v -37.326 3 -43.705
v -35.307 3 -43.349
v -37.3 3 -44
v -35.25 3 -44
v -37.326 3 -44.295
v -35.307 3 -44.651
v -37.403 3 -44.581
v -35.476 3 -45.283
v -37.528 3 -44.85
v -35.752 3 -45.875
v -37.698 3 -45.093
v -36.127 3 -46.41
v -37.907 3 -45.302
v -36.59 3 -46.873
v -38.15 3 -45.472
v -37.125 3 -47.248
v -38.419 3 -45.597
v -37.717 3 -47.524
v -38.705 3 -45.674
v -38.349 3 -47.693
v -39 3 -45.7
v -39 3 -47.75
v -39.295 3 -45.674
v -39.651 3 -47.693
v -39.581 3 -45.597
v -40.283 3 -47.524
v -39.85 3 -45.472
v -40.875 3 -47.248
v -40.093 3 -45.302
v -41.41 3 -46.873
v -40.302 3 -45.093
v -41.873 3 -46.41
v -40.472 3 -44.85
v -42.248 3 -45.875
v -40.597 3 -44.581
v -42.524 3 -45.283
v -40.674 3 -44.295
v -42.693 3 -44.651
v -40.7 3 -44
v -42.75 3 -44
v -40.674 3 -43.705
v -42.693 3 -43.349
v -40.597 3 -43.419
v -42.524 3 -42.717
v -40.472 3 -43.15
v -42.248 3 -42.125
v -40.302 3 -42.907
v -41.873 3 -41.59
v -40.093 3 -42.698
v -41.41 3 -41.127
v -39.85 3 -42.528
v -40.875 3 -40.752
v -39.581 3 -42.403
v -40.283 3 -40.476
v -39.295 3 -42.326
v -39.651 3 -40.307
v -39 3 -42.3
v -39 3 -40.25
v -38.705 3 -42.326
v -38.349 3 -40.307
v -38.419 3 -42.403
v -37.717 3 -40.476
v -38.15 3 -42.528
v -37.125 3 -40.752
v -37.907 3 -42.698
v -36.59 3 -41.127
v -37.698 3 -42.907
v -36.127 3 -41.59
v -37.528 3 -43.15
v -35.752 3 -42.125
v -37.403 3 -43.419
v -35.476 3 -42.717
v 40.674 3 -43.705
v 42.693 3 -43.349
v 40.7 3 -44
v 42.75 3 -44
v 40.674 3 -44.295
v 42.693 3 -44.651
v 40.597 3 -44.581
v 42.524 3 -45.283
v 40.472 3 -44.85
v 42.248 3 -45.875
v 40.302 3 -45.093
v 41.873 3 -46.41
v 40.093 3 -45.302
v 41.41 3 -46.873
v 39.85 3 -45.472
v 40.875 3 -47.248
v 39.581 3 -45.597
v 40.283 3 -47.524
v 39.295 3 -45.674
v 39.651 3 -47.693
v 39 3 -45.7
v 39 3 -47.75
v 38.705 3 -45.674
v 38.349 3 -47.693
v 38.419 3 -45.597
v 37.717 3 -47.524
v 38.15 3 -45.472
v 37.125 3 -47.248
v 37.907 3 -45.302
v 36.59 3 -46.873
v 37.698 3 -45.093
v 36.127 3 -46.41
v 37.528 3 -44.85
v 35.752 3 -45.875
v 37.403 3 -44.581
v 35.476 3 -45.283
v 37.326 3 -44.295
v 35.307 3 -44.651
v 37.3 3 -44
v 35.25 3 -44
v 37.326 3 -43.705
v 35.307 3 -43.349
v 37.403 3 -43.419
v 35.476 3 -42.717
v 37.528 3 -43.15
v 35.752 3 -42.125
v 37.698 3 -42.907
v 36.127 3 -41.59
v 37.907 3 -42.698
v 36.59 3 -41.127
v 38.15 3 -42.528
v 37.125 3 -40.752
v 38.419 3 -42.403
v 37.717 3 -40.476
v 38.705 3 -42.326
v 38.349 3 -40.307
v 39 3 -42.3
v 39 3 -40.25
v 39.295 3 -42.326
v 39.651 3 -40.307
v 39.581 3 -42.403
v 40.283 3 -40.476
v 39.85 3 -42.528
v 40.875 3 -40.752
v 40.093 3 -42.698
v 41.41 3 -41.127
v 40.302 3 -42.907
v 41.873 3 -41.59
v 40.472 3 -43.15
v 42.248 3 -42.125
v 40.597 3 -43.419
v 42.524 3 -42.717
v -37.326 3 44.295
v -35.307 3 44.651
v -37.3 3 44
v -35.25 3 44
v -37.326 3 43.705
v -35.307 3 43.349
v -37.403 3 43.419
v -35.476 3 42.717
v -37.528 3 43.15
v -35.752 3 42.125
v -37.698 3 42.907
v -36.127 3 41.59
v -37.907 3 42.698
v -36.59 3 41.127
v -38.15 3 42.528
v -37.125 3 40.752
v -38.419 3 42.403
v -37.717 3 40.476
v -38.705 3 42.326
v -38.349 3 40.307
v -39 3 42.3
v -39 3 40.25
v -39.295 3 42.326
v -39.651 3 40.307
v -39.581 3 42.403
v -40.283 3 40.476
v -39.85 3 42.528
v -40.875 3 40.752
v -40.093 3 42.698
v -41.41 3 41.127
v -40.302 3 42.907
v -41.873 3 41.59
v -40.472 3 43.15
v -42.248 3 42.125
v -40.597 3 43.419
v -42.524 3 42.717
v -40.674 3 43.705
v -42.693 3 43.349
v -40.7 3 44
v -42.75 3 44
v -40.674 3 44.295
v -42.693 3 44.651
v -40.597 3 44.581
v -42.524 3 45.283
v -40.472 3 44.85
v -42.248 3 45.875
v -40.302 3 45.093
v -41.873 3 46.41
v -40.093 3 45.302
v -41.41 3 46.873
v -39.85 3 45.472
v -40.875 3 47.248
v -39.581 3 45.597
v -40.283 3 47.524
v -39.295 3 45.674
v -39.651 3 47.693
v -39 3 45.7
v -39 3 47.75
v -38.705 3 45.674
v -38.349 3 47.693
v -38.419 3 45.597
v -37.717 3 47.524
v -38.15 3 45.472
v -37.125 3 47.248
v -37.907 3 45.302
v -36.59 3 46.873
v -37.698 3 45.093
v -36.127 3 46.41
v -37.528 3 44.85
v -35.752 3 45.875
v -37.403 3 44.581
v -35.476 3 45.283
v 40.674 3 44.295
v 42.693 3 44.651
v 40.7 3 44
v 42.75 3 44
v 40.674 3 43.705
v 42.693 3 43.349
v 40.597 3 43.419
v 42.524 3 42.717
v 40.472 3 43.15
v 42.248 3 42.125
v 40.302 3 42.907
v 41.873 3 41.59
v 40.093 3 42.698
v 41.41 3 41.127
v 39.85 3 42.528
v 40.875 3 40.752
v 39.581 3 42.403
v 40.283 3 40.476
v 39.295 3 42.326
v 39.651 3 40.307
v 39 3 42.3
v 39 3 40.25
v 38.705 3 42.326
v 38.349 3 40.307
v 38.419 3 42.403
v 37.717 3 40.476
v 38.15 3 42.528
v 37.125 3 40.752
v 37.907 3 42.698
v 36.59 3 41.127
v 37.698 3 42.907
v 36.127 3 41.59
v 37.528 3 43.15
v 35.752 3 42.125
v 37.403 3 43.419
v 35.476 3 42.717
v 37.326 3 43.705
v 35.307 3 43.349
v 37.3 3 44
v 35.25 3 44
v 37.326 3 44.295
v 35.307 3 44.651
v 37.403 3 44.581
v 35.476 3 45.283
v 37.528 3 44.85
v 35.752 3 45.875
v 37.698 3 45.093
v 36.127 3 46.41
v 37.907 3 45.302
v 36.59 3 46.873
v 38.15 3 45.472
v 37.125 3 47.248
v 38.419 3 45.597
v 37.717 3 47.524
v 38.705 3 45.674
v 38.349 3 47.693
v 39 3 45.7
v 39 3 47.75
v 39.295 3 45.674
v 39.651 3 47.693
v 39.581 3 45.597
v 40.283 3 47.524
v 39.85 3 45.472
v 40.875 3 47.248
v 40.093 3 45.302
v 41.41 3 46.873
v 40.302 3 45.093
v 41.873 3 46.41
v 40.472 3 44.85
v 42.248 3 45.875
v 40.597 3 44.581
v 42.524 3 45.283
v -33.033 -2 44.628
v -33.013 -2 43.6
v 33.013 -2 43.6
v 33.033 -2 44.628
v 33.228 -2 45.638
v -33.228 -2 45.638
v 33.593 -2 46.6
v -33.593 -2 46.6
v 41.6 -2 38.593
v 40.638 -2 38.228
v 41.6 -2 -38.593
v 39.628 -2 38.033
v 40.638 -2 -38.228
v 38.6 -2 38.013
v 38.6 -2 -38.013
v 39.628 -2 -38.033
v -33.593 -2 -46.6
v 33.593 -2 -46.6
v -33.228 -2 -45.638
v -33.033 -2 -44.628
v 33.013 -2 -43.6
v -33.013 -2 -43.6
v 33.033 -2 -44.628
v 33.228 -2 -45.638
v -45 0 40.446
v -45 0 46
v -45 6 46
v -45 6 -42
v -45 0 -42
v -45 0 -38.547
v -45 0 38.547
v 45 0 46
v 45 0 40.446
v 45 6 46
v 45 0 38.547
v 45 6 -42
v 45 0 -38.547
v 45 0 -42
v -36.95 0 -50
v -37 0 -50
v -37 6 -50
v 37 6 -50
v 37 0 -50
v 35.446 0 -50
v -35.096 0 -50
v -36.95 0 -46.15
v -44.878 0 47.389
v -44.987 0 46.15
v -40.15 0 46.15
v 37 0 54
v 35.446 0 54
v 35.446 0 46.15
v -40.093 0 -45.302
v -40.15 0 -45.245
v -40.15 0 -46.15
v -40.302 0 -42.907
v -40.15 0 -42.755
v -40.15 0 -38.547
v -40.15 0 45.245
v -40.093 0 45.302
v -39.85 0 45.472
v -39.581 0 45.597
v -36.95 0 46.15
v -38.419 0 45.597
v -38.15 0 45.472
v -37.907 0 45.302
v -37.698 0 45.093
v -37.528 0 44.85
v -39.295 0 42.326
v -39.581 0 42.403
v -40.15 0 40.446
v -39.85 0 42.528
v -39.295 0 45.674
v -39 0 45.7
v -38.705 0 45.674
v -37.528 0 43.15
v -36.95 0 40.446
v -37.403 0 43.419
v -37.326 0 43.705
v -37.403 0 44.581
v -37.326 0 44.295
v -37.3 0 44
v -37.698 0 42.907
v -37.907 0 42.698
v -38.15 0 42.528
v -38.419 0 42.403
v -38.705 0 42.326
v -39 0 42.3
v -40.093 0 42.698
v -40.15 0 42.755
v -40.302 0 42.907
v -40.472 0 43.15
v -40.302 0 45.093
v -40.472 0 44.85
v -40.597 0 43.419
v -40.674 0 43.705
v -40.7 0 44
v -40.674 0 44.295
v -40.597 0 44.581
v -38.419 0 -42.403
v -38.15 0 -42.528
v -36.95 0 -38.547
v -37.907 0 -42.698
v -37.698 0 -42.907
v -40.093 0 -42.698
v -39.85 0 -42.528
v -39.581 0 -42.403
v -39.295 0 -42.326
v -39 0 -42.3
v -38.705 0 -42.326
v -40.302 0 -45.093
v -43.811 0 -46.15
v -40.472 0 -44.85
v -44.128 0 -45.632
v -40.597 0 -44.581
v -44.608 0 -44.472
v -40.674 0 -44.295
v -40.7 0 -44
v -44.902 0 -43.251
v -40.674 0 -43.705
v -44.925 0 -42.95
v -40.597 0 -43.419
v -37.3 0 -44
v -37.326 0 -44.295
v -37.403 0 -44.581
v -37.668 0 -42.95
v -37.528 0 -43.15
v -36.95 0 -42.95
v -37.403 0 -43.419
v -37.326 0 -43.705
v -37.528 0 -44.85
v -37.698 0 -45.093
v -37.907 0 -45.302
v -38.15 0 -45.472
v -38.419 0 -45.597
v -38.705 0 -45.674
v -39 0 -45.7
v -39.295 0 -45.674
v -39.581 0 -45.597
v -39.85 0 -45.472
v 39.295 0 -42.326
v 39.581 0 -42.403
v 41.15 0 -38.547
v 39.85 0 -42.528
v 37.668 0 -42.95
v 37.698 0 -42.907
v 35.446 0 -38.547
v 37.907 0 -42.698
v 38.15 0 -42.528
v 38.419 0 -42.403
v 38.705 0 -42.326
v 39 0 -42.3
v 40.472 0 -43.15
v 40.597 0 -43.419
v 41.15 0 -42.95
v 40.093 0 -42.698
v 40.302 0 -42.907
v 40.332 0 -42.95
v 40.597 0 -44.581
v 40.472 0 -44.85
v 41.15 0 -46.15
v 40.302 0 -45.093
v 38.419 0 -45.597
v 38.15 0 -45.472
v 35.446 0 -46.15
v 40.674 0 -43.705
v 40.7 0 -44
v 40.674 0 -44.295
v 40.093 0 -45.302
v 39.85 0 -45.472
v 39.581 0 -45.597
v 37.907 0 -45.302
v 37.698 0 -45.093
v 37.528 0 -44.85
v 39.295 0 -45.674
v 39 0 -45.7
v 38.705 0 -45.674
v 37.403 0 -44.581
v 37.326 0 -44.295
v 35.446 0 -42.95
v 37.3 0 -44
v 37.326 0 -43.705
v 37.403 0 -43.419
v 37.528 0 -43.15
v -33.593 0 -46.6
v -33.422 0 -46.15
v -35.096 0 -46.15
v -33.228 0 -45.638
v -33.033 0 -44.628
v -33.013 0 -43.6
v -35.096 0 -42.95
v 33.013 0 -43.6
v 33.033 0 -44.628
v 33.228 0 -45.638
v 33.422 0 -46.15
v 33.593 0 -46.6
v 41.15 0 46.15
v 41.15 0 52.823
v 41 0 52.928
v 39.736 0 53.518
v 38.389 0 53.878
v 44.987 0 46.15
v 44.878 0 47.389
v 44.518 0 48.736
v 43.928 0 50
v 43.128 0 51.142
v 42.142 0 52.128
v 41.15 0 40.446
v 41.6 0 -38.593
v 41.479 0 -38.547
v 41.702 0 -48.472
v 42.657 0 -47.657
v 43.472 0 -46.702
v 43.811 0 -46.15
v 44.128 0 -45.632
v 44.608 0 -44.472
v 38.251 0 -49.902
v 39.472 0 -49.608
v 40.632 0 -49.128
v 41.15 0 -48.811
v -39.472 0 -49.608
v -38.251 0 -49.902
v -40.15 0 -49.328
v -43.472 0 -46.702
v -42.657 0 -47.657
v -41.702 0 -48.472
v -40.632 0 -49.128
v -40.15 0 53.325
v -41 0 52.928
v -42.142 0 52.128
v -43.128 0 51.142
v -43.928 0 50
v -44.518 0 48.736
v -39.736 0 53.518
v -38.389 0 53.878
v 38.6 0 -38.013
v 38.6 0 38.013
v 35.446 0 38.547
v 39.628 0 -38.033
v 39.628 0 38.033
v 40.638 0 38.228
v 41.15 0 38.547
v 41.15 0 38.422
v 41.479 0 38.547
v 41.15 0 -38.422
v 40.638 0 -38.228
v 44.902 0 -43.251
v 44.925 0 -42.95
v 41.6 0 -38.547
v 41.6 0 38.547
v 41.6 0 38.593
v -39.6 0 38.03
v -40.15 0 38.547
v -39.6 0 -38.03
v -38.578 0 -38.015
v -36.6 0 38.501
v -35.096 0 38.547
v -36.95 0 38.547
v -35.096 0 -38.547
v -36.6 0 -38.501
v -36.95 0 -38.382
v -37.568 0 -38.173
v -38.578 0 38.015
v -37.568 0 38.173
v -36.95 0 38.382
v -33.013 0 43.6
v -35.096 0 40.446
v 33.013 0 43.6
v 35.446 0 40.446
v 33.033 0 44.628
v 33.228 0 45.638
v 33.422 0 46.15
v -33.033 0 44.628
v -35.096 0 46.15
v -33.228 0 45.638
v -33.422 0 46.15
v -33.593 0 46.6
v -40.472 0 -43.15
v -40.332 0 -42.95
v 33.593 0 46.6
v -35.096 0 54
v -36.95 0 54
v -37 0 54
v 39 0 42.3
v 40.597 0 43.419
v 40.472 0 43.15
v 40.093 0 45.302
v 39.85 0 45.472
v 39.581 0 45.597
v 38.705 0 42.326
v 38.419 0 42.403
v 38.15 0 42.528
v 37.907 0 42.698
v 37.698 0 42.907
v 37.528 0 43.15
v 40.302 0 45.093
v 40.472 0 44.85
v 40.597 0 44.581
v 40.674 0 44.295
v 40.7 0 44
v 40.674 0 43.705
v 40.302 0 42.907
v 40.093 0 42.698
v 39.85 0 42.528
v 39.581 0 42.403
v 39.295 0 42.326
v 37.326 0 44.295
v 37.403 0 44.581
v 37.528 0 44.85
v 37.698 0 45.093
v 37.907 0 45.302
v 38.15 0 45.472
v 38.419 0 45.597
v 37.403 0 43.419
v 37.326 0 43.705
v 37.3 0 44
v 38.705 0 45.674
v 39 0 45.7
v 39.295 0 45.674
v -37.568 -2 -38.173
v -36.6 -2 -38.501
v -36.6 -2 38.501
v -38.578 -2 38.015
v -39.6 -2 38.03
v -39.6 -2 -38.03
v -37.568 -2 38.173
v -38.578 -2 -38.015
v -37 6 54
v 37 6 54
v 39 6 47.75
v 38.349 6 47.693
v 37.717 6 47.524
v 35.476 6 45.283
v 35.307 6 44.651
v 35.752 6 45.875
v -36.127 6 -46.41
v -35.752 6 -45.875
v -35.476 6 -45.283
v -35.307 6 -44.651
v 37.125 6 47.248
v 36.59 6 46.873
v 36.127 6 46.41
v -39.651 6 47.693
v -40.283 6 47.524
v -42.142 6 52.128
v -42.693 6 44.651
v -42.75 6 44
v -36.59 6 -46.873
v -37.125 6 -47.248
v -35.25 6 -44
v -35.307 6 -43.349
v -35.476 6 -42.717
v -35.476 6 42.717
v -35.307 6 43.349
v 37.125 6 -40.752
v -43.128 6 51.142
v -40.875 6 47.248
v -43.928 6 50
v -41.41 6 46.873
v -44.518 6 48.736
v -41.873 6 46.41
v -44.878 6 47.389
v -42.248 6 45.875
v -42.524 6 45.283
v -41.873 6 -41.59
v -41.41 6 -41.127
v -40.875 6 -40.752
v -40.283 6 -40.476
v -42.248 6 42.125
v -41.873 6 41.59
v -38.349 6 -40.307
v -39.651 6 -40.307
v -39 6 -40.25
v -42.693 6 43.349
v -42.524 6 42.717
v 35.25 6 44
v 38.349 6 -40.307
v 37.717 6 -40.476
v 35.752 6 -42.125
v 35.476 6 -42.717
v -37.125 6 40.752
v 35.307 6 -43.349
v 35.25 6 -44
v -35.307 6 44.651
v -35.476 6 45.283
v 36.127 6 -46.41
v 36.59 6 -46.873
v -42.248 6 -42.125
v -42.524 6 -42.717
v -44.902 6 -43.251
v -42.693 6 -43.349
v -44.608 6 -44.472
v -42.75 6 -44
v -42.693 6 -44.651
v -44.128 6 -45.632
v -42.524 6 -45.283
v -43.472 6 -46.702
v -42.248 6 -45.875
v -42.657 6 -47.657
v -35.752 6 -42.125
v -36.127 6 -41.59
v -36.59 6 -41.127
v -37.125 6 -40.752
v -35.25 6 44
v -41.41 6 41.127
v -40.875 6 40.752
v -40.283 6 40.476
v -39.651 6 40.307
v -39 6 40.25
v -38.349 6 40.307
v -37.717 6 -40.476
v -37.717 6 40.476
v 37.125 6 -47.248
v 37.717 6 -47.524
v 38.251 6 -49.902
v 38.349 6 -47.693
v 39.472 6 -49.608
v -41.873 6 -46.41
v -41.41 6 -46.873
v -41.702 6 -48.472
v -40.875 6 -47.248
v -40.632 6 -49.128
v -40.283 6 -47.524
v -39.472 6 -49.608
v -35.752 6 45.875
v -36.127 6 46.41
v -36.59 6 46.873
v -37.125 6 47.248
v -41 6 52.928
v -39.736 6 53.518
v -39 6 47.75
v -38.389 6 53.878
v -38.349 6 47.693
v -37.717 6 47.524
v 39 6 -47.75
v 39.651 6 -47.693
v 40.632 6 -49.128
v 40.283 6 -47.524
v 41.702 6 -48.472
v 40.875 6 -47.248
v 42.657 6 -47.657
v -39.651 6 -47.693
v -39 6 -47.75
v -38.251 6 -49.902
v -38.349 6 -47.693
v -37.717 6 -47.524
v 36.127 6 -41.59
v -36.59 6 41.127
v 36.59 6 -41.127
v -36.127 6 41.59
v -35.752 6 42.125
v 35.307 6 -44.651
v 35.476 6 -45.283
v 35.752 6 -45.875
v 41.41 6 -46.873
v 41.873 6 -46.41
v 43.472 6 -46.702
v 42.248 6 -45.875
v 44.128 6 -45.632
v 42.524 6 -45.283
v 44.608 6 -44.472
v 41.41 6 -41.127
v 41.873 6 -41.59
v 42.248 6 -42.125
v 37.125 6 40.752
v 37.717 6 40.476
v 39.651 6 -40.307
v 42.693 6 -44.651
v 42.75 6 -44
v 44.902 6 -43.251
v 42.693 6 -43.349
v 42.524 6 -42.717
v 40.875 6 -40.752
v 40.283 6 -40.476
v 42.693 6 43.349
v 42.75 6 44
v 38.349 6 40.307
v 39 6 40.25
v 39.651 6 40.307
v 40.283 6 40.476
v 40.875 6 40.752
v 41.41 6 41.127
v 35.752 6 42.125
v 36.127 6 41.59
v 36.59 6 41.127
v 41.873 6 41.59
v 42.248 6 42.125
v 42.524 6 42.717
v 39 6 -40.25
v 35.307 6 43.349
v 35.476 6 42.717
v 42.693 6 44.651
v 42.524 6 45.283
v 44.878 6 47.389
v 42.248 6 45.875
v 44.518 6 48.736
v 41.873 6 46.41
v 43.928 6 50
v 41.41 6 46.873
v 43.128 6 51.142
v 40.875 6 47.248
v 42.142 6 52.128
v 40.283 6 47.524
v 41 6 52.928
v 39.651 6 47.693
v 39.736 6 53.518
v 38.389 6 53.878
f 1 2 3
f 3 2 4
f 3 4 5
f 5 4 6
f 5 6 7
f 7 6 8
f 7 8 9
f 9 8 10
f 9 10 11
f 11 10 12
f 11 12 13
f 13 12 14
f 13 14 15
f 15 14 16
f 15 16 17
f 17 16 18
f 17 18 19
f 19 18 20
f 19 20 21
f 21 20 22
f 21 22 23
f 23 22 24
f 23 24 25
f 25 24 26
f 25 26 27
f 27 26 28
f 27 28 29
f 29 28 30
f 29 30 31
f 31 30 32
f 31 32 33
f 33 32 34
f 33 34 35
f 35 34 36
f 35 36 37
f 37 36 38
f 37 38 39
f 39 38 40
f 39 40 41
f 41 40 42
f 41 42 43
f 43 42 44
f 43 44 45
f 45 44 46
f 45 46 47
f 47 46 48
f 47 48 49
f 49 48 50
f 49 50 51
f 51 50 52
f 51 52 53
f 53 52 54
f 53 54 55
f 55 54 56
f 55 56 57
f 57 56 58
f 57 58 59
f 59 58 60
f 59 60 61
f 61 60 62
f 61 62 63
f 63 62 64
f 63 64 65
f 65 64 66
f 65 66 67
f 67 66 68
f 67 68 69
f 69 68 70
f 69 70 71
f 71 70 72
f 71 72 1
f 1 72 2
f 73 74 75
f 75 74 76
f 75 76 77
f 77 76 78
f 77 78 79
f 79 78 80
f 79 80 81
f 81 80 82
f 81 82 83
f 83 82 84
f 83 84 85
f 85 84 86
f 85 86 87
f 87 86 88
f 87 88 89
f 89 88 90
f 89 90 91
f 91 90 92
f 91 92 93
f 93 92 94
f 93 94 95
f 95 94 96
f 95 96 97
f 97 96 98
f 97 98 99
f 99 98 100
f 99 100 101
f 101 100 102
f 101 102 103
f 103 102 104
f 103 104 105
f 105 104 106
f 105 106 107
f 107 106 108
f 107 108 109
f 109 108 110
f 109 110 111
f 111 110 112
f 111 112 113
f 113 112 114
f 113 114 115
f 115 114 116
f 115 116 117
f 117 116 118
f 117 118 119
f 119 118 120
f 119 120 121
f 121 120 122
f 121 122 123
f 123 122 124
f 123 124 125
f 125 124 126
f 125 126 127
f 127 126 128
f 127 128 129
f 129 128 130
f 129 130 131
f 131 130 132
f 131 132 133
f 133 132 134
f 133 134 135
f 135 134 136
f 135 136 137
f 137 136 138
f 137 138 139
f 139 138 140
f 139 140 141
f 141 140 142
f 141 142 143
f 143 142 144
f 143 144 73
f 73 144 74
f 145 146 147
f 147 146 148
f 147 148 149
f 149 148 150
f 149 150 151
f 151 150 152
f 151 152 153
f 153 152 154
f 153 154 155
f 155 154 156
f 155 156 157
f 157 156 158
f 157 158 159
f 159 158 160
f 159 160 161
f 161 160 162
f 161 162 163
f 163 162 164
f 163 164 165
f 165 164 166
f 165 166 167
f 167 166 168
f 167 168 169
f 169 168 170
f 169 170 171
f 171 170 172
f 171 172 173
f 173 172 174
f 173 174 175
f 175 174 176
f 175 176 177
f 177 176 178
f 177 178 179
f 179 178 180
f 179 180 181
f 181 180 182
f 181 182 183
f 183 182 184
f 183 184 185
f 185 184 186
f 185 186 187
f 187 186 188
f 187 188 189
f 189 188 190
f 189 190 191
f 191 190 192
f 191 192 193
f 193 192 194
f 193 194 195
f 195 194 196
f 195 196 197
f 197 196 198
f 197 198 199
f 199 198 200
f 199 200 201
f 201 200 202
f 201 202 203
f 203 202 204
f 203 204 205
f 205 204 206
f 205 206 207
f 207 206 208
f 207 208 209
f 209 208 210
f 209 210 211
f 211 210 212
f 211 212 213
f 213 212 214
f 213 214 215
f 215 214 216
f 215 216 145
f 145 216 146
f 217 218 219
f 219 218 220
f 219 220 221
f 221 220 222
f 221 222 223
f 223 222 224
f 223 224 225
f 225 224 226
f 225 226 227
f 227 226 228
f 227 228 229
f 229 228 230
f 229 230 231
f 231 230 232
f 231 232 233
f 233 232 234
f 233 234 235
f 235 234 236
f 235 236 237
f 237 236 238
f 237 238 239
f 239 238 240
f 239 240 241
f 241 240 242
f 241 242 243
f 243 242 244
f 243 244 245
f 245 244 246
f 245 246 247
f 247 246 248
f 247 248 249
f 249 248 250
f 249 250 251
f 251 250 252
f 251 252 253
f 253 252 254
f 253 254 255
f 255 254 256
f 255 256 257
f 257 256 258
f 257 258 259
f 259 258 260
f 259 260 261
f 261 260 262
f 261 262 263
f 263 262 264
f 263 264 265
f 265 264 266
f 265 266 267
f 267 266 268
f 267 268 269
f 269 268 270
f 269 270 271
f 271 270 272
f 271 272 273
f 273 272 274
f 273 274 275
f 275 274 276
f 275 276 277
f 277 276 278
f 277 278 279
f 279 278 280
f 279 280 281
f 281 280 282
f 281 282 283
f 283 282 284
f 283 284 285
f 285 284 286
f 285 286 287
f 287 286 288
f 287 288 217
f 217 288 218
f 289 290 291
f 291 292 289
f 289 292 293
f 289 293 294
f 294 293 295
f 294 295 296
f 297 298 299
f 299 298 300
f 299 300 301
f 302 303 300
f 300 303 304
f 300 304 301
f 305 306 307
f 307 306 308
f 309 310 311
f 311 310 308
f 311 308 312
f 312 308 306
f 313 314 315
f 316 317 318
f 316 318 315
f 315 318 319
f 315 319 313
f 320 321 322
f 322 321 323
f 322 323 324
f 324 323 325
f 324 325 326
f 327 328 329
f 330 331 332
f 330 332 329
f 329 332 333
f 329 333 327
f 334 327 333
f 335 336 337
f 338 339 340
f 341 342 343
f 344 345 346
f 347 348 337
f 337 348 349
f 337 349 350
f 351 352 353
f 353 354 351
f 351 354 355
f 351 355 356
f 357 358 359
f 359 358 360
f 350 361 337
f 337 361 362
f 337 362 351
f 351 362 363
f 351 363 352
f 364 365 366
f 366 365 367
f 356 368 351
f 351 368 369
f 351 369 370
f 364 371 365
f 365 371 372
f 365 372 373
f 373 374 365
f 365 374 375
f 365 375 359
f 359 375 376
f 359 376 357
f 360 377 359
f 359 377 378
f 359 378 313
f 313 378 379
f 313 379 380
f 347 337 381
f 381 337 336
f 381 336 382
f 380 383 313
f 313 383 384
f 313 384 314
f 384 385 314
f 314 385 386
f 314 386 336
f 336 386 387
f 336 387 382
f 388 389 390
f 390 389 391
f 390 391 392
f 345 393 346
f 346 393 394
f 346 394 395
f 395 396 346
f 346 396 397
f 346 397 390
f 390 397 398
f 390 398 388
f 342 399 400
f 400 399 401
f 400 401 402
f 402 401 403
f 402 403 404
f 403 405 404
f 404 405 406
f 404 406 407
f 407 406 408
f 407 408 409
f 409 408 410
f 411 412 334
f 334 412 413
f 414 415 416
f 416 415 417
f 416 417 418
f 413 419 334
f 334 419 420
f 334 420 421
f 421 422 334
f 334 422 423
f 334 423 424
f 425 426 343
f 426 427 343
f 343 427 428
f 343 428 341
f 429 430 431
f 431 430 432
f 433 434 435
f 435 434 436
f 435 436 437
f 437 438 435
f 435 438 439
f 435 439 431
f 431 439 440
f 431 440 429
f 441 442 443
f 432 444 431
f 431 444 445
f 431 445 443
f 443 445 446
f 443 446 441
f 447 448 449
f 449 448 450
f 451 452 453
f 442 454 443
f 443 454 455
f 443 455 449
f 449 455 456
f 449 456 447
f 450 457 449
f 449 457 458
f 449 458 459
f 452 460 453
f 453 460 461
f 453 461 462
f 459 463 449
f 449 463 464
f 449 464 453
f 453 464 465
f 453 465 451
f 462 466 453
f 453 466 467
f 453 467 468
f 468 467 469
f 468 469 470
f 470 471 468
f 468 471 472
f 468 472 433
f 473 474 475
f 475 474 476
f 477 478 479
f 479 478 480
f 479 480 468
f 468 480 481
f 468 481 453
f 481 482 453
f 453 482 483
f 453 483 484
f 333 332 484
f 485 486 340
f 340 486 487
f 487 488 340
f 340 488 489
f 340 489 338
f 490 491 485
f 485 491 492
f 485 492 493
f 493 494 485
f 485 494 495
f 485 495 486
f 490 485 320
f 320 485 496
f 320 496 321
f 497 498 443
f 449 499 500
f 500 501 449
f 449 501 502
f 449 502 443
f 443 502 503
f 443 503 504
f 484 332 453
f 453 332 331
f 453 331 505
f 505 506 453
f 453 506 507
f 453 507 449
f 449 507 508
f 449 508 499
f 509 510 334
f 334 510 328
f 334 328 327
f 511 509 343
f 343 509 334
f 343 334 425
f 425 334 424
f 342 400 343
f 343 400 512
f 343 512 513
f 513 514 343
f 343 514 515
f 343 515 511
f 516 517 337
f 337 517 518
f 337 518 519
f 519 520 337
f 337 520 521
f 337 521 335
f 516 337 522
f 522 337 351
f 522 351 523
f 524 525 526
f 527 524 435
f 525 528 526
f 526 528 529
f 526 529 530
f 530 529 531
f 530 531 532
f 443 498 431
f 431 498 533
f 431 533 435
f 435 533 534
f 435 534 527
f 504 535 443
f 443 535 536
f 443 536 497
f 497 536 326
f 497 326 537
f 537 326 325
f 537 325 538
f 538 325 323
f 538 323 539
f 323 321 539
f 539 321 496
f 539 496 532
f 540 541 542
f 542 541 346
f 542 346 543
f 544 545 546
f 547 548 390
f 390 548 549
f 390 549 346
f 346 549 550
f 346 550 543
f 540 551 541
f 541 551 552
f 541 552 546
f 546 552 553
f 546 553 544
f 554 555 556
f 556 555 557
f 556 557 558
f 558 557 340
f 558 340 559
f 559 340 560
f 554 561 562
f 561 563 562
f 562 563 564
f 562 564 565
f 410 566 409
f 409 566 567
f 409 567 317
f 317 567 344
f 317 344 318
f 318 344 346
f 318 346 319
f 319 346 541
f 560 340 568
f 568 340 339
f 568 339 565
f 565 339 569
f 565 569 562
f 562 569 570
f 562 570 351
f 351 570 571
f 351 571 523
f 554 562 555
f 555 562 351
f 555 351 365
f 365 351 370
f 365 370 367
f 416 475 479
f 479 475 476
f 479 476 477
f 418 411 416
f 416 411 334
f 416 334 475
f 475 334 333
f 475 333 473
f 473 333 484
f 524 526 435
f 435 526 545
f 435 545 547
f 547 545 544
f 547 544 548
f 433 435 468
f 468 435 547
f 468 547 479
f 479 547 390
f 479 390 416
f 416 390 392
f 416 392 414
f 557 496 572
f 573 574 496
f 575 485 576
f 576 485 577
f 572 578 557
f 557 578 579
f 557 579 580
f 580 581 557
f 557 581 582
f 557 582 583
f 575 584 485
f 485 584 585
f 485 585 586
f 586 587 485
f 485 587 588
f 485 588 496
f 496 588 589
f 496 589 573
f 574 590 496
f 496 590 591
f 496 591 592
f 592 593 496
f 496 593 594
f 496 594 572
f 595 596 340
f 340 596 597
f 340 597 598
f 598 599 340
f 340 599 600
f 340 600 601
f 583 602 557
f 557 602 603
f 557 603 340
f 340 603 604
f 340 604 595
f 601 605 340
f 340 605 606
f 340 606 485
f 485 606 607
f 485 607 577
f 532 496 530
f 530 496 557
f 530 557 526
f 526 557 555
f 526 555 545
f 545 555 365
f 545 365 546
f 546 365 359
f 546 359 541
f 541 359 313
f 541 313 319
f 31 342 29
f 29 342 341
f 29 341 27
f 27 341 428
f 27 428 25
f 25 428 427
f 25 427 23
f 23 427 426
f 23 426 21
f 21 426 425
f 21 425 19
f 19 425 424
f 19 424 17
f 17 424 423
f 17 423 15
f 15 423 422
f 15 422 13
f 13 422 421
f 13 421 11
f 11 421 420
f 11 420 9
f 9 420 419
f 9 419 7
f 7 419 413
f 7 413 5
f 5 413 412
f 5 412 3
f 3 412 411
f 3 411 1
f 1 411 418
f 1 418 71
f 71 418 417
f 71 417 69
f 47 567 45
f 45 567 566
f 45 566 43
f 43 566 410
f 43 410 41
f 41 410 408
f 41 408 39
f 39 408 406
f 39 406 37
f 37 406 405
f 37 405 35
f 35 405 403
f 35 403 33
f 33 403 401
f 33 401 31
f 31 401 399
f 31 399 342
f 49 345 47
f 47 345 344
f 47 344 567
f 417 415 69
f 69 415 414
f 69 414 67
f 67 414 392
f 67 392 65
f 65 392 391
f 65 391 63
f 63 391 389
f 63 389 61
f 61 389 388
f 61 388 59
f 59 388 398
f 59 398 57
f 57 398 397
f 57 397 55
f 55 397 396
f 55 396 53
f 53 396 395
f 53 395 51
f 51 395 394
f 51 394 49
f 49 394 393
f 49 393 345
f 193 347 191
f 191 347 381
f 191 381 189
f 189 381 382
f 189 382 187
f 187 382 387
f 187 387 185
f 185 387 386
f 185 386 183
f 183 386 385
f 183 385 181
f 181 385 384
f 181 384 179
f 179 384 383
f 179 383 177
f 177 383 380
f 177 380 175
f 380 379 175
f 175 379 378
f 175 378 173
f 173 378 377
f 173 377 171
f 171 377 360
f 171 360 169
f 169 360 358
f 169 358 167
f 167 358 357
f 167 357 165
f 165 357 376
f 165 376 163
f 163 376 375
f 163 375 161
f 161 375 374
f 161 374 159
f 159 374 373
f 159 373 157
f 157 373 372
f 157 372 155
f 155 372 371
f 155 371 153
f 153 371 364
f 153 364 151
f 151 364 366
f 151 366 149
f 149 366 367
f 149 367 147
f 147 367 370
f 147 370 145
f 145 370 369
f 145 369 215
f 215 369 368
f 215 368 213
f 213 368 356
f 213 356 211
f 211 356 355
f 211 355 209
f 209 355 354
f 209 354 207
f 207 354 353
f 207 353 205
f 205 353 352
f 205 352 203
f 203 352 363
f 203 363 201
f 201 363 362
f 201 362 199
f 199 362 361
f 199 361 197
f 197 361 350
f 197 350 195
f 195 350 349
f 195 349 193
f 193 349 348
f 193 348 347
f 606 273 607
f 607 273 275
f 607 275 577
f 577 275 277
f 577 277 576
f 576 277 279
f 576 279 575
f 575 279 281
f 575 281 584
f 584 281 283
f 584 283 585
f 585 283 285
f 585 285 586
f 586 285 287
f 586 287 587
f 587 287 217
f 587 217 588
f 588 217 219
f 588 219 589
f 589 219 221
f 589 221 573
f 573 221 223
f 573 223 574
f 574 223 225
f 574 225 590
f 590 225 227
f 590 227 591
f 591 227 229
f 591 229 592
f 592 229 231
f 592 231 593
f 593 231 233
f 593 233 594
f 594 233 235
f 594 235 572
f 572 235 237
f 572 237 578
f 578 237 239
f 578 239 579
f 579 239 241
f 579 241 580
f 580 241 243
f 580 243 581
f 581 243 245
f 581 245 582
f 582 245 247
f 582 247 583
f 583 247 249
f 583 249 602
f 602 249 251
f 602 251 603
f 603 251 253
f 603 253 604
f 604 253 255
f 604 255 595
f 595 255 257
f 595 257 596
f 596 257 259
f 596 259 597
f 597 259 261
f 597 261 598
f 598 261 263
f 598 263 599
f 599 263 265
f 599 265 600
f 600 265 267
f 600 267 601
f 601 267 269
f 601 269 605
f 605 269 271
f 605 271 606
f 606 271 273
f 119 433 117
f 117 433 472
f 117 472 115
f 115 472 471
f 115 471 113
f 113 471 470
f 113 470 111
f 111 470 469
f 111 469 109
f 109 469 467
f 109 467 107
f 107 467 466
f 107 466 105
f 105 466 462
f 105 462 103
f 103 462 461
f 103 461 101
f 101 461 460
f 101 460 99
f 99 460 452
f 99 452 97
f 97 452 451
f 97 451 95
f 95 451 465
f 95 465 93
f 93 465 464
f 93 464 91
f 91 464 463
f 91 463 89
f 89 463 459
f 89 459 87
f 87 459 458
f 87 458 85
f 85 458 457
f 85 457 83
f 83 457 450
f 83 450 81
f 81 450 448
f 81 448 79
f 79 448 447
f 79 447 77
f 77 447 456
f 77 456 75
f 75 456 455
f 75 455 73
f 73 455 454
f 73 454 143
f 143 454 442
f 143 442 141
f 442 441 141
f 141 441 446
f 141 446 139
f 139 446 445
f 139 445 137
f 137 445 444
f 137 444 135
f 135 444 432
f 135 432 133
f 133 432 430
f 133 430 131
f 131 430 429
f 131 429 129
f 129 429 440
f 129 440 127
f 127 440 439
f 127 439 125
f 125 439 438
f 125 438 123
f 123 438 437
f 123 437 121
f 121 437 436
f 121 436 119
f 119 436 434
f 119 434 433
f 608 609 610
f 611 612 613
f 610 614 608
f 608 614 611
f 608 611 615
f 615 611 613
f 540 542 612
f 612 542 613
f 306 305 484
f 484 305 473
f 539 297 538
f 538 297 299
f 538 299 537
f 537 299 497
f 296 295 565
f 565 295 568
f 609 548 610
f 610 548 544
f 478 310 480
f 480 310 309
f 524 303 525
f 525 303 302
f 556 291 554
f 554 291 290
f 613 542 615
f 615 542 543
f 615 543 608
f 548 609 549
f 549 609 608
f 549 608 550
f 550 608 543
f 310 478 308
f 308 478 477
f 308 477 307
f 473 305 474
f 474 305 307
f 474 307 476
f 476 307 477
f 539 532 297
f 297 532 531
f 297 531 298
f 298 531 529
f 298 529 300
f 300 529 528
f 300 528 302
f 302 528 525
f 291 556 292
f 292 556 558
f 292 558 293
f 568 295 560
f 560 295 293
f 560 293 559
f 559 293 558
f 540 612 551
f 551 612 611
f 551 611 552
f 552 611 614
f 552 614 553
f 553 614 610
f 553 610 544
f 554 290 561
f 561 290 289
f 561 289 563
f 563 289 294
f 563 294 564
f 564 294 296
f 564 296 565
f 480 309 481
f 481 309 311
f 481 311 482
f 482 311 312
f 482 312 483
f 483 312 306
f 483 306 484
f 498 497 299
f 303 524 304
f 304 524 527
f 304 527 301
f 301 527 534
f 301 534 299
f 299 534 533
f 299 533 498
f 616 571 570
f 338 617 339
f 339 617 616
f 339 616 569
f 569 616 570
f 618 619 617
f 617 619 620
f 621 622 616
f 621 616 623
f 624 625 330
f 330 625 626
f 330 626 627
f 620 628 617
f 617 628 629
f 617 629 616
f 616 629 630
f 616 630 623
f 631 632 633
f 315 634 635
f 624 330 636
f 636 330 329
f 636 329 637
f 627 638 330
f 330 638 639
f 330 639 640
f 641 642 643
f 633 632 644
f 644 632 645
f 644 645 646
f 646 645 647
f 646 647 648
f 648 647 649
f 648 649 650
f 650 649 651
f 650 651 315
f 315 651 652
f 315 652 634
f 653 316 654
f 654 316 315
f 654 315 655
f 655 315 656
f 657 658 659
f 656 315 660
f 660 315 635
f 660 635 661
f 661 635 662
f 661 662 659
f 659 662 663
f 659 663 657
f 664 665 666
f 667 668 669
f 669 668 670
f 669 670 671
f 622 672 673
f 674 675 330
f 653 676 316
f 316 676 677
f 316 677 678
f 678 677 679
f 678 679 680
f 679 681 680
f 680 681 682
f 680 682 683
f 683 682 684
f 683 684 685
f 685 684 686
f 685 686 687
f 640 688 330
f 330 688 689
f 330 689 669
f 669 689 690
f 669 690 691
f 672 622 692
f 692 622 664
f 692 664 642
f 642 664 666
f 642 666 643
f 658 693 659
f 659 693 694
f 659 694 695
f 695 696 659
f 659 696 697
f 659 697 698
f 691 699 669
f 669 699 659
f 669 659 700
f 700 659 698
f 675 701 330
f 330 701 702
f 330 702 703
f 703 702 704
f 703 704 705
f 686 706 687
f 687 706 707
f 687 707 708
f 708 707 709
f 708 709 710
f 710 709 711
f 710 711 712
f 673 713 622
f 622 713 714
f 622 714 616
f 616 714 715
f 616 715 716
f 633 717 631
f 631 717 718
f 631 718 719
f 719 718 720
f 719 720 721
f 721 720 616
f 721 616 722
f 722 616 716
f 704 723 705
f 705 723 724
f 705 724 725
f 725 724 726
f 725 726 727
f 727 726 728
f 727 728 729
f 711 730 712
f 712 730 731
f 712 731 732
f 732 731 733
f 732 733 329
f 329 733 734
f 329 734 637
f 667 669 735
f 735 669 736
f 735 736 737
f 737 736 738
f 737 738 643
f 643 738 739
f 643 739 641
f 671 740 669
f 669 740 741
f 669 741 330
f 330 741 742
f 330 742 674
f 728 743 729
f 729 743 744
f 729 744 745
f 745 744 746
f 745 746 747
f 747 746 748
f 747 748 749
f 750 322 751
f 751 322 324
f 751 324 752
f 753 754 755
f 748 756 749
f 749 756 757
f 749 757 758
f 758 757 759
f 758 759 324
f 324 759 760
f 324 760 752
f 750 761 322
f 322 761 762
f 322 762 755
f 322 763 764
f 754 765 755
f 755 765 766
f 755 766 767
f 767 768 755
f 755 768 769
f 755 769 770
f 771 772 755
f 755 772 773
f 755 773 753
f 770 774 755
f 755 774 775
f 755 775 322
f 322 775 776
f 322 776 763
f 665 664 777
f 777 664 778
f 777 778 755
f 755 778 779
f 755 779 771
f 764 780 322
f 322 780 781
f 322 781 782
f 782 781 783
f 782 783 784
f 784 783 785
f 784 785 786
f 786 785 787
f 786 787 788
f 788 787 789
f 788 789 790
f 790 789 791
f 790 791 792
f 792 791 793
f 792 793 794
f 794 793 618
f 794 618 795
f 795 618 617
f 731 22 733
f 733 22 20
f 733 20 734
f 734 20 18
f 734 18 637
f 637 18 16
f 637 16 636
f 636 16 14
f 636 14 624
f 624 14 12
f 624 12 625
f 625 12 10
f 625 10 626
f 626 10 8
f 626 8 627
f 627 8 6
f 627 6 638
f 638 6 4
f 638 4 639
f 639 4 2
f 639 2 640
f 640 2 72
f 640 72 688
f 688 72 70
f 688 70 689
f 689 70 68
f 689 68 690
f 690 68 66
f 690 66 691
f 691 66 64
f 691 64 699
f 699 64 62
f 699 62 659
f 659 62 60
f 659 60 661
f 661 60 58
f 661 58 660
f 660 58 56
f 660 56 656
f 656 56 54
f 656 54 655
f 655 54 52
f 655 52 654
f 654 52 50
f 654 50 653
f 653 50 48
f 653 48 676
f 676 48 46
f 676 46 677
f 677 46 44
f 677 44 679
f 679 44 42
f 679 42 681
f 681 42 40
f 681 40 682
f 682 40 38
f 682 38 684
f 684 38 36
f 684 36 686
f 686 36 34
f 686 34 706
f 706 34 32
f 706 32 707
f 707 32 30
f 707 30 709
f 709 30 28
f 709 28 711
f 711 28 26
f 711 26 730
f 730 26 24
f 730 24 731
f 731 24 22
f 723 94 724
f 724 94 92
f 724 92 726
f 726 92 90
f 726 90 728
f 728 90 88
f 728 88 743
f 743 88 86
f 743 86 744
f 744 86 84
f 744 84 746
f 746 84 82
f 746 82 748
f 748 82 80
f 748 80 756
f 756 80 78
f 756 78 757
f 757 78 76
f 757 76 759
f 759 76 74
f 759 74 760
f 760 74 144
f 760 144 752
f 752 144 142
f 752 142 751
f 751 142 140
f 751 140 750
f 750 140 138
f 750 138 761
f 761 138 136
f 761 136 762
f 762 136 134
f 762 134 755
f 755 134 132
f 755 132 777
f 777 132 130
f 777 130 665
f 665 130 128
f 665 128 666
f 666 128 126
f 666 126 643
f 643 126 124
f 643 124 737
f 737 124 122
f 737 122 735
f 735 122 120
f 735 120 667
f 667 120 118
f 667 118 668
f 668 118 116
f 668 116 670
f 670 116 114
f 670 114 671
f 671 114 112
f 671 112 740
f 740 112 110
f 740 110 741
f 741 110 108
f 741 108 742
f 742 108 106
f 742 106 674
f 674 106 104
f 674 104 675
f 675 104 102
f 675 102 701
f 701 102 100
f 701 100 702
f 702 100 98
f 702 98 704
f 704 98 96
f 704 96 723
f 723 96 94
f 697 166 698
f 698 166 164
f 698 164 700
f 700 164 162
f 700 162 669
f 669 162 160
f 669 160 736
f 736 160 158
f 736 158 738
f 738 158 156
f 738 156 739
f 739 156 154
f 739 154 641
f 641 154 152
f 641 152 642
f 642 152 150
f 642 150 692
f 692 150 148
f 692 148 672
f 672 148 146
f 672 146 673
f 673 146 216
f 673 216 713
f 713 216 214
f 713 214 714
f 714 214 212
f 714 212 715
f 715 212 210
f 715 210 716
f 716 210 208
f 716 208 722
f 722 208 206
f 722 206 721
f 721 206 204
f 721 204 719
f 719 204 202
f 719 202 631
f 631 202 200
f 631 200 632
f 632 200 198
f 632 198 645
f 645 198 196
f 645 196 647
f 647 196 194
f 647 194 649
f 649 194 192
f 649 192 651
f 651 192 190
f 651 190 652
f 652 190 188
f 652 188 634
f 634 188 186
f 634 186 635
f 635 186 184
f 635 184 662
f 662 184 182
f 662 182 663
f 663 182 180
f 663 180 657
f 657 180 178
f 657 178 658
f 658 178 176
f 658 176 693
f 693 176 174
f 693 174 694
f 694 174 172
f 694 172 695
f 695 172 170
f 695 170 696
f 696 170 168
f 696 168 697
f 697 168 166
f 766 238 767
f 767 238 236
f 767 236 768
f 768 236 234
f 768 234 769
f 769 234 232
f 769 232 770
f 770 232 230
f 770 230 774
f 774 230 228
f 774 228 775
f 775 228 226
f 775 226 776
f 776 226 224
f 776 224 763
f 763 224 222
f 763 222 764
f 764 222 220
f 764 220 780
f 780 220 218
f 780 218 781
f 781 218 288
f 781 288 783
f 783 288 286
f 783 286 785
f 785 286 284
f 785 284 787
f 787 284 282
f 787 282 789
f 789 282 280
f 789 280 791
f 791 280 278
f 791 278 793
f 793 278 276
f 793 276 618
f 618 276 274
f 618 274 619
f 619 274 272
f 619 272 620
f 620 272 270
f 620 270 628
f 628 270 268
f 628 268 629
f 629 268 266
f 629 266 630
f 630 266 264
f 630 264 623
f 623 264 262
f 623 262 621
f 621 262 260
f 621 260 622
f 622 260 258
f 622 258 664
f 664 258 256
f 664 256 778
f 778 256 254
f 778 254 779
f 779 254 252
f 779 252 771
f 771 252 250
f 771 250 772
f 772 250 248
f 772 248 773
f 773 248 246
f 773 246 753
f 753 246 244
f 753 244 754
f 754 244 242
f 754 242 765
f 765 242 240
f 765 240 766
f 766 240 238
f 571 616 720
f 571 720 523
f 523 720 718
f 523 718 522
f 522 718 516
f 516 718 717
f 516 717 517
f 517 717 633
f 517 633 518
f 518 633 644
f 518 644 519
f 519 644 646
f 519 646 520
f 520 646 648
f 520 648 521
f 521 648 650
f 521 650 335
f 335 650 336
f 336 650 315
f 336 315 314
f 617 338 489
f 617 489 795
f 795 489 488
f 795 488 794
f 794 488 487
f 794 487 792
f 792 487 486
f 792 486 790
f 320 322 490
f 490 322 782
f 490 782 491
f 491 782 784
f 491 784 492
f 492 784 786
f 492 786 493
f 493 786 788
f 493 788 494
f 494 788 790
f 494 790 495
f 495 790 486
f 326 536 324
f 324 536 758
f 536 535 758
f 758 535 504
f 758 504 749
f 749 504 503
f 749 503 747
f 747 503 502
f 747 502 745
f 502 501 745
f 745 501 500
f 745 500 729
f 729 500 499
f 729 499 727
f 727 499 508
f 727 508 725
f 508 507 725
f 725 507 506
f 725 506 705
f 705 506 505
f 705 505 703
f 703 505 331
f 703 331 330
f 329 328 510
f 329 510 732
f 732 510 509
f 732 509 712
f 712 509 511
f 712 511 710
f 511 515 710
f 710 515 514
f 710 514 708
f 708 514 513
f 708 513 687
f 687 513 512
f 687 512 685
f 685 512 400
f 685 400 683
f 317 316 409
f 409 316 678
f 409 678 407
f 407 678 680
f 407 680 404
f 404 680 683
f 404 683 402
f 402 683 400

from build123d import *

# Parameters (mm, degrees)
SKETCH1_W           = 90
SKETCH1_H           = 100
BOSS_EXTRUDE1_DEPTH = 3
SKETCH2_R           = 1.7
CUT_EXTRUDE1_DEPTH  = 4
SKETCH4_W           = 81.2
SKETCH4_H           = 93.2
SKETCH4_W_2         = 75.2
SKETCH4_H_2         = 87.2
BOSS_EXTRUDE2_DEPTH = 2
CUT_EXTRUDE5_START  = -3
SKETCH6_R           = 6
CUT_EXTRUDE5_DEPTH  = 3
SKETCH7_W           = 90
SKETCH7_H           = 3
BOSS_EXTRUDE3_DEPTH = 4
SKETCH8_R           = 3.75
BOSS_EXTRUDE4_DEPTH = 3
FILLET1_R           = 8


with BuildPart() as part:
    # Sketch1 → Boss-Extrude1 (new body)
    with BuildSketch(Plane(origin=(0, 0, 0), x_dir=(1, 0, 0), z_dir=(0, 1, 0))):
        Rectangle(SKETCH1_W, SKETCH1_H)
    extrude(amount=BOSS_EXTRUDE1_DEPTH)

    # Sketch2 → Cut-Extrude1 (cut, through all)
    with BuildSketch(Plane(origin=(0, 3, 0), x_dir=(1, 0, 0), z_dir=(0, 1, 0))):
        with Locations((-39, 44)):
            Circle(SKETCH2_R)
        with Locations((39, 44)):
            Circle(SKETCH2_R)
        with Locations((39, -44)):
            Circle(SKETCH2_R)
        with Locations((-39, -44)):
            Circle(SKETCH2_R)
    extrude(amount=-CUT_EXTRUDE1_DEPTH, mode=Mode.SUBTRACT)

    # Sketch4 → Boss-Extrude2 (add)
    with BuildSketch(Plane.XZ):
        with Locations((1, 0)):
            Rectangle(SKETCH4_W, SKETCH4_H)
        with Locations((1, 0)):
            Rectangle(SKETCH4_W_2, SKETCH4_H_2, mode=Mode.SUBTRACT)
    extrude(amount=BOSS_EXTRUDE2_DEPTH)

    # Sketch6 → Cut-Extrude5 (cut, through all)
    with BuildSketch(Plane(origin=(0, 3, 0), x_dir=(1, 0, 0), z_dir=(0, 1, 0)).offset(CUT_EXTRUDE5_START)):
        with Locations((-39, 44)):
            Circle(SKETCH6_R)
        with Locations((-39, -44)):
            Circle(SKETCH6_R)
        with Locations((39, -44)):
            Circle(SKETCH6_R)
        with Locations((39, 44)):
            Circle(SKETCH6_R)
    extrude(amount=-CUT_EXTRUDE5_DEPTH, mode=Mode.SUBTRACT)

    # Sketch7 → Boss-Extrude3 (add)
    with BuildSketch(Plane.XY.offset(50)):
        with Locations((0, 1.5)):
            Rectangle(SKETCH7_W, SKETCH7_H)
    extrude(amount=BOSS_EXTRUDE3_DEPTH)

    # Sketch8 → Boss-Extrude4 (add)
    with BuildSketch(Plane(origin=(0, 3, 0), x_dir=(1, 0, 0), z_dir=(0, 1, 0))):
        Polygon((-45, -50), (-45, -54), (45, -54), (45, -50), (45, 50), (-45, 50), align=None)
        with Locations((-39, 44)):
            Circle(SKETCH8_R, mode=Mode.SUBTRACT)
        with Locations((39, 44)):
            Circle(SKETCH8_R, mode=Mode.SUBTRACT)
        with Locations((-39, -44)):
            Circle(SKETCH8_R, mode=Mode.SUBTRACT)
        with Locations((39, -44)):
            Circle(SKETCH8_R, mode=Mode.SUBTRACT)
    extrude(amount=BOSS_EXTRUDE4_DEPTH)

    # Fillet1
    fillet1_edges = [part.edges().sort_by_distance(p)[0] for p in [
        (-45, 3, 54),
        (45, 3, 54),
        (-45, 3, -50),
        (45, 3, -50),
    ]]
    fillet(fillet1_edges, radius=FILLET1_R)


solid = part.part
